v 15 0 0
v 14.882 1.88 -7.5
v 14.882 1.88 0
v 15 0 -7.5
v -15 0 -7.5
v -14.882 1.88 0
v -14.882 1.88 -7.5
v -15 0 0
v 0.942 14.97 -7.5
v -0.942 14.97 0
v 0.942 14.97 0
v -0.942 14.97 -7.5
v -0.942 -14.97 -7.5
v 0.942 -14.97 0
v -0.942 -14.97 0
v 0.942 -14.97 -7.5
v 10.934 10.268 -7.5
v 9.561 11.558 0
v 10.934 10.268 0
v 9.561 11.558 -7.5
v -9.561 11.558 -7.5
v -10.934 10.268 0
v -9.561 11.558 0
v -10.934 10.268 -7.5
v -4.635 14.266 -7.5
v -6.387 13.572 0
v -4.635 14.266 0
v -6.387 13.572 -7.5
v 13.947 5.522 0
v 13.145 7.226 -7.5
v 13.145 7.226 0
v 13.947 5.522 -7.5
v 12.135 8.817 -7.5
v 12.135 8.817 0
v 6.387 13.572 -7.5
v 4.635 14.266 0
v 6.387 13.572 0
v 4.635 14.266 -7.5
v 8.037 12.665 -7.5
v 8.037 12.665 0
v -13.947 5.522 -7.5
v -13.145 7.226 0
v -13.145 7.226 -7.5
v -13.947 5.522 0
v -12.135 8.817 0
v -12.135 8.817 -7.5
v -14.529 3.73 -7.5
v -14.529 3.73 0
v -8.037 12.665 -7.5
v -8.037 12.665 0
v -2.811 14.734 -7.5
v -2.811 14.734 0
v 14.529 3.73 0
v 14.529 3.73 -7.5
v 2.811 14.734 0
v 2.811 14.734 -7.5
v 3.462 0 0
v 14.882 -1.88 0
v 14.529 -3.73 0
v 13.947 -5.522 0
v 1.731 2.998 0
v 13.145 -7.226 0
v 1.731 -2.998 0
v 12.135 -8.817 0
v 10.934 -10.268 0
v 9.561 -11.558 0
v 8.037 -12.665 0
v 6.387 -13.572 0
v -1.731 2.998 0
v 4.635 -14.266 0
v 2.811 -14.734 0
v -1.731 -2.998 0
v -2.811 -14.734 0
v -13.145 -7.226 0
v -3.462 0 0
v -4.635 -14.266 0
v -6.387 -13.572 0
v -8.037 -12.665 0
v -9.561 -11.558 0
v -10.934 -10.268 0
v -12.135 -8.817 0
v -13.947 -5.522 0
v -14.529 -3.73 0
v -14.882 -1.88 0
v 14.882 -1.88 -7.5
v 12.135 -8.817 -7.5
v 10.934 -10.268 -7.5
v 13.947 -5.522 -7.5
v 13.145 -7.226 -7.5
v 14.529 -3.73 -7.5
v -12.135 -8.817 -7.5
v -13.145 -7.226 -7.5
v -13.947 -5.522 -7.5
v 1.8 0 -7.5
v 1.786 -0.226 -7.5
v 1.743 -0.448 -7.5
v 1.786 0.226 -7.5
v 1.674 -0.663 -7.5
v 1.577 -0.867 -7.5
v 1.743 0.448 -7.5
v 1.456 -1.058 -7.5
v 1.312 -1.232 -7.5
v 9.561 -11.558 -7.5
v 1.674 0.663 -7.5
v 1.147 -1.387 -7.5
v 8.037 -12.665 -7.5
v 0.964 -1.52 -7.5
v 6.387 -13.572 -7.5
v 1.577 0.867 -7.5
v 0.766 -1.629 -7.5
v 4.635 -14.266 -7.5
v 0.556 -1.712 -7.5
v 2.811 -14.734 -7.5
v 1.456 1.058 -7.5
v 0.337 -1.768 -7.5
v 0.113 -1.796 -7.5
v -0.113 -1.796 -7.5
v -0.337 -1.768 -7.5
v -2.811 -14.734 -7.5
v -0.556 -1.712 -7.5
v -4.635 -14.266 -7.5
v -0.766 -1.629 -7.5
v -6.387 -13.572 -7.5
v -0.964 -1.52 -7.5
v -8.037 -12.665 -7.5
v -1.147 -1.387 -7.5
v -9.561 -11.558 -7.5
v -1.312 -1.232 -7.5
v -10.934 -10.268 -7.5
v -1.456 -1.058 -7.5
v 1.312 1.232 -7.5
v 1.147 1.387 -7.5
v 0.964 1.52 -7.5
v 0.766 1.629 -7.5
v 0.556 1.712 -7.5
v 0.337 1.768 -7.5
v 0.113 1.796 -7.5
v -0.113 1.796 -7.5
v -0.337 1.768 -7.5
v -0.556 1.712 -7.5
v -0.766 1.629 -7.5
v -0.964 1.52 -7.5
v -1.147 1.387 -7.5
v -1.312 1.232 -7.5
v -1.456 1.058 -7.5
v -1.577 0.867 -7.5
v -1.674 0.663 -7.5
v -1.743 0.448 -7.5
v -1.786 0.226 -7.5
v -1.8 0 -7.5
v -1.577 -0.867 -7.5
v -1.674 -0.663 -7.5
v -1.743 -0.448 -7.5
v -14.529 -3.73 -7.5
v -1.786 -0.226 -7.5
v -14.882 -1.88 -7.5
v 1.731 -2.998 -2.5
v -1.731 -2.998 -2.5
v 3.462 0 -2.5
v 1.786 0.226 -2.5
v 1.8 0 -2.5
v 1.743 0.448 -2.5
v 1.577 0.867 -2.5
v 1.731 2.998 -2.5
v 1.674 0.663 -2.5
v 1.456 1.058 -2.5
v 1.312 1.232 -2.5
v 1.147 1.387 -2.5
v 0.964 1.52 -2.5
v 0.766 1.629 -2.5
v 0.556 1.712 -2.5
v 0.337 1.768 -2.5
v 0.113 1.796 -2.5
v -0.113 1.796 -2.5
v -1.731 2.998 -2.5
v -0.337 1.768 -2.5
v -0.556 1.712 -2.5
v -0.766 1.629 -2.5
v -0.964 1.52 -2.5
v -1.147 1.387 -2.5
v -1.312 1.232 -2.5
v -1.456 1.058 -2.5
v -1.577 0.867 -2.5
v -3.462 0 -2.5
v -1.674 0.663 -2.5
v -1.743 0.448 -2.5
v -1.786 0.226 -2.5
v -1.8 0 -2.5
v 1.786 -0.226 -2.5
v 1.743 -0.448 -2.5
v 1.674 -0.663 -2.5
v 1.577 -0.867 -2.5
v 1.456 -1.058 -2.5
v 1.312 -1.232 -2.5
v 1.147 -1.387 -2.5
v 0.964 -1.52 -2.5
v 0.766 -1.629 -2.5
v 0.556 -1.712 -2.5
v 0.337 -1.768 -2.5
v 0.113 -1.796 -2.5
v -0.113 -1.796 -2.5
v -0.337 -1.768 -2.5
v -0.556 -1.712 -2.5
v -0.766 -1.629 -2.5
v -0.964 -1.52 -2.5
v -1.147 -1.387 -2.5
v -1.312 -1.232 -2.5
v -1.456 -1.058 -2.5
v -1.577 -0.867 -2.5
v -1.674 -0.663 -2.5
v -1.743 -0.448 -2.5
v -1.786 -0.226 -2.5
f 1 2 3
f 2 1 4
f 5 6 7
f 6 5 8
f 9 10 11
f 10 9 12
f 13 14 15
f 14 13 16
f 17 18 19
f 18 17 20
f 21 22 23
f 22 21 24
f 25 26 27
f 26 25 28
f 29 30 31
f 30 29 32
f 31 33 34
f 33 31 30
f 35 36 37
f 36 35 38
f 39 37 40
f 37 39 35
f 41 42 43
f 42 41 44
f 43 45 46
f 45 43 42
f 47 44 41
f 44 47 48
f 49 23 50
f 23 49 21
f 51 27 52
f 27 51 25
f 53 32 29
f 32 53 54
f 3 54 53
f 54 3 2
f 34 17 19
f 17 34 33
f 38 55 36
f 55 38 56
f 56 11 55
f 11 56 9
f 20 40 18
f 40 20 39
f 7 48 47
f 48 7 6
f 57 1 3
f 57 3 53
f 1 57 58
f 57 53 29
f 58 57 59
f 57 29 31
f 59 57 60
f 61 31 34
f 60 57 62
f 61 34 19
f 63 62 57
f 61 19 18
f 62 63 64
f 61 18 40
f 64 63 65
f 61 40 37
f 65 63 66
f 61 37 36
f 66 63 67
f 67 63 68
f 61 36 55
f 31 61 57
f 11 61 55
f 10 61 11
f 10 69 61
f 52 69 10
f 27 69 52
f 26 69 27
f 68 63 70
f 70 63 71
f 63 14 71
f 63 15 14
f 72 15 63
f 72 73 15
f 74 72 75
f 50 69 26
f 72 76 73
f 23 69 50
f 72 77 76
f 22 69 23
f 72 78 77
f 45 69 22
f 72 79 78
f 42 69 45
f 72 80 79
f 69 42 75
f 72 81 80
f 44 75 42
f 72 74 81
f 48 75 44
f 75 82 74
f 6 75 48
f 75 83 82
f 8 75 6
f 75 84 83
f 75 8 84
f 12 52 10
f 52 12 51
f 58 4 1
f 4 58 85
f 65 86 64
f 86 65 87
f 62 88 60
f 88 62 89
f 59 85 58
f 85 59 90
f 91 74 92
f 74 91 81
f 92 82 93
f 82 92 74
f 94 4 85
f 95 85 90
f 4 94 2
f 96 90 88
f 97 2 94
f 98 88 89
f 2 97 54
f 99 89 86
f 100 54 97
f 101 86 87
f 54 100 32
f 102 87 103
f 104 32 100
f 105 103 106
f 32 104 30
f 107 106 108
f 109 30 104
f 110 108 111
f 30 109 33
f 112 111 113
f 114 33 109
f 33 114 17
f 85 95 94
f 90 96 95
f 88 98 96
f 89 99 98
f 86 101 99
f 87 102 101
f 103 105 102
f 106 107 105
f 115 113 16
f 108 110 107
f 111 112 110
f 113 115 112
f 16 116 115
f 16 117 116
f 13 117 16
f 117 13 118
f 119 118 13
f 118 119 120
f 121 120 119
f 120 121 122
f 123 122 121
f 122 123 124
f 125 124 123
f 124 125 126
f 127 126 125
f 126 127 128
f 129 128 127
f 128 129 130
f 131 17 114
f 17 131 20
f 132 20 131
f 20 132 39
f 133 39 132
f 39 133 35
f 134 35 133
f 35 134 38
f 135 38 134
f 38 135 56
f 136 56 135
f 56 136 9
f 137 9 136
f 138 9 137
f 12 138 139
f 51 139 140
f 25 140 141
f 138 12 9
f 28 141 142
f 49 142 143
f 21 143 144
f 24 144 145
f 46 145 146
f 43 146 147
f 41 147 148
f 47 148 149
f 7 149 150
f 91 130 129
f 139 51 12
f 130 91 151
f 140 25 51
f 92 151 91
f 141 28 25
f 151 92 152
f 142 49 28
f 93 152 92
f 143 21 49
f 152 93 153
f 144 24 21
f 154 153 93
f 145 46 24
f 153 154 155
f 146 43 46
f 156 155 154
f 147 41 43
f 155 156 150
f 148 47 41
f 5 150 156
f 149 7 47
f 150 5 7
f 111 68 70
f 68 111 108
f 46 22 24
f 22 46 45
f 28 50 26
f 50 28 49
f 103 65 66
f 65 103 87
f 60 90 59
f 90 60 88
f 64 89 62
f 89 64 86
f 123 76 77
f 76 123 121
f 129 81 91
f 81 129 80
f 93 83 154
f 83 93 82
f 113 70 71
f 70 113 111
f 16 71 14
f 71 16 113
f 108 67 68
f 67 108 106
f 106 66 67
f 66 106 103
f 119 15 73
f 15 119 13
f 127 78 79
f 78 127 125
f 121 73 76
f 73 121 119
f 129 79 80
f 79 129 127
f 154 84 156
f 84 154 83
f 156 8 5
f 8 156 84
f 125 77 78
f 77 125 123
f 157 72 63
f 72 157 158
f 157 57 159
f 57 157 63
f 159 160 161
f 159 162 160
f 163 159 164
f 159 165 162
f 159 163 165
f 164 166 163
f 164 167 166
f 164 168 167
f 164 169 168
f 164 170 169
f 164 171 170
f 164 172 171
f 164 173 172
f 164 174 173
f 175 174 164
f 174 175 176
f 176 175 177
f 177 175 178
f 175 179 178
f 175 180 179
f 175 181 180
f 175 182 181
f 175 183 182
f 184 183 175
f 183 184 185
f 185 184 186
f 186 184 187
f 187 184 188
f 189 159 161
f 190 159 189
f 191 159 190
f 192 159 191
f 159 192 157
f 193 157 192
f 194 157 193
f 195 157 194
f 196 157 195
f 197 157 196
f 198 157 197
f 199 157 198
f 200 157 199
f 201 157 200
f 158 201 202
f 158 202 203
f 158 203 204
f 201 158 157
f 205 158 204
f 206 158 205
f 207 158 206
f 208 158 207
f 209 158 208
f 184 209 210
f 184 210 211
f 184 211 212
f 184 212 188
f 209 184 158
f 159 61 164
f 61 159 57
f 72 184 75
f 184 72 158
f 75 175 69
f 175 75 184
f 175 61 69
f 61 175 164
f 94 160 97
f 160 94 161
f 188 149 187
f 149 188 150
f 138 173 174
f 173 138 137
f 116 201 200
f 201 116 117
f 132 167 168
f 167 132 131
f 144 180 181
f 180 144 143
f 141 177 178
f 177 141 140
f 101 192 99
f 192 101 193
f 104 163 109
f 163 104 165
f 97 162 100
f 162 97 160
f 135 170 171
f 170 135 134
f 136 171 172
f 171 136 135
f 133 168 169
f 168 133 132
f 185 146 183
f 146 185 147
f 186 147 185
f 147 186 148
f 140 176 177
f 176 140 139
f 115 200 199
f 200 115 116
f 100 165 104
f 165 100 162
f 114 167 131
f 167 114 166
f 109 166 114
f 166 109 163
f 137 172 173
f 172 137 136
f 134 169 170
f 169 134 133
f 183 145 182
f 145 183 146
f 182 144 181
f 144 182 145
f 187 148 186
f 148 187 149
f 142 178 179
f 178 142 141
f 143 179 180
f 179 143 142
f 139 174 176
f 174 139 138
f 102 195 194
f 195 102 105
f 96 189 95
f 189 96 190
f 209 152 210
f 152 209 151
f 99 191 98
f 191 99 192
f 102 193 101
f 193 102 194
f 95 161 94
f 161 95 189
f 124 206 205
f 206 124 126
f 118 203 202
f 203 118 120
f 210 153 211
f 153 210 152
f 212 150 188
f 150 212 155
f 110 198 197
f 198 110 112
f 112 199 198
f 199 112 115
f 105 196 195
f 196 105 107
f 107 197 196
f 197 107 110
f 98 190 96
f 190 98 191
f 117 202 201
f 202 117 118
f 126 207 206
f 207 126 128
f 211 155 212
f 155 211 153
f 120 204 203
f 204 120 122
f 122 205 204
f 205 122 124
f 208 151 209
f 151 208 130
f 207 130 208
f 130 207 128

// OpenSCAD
$fn = 50;


difference() {
	union() {
		translate(v = [0, 0, -7.5000000000]) {
			cylinder(h = 7.5000000000, r = 15.0000000000);
		}
		translate(v = [0, 0, -6.0000000000]) {
			cylinder(h = 6, r = 2.8750000000);
		}
	}
	union() {
		translate(v = [0, 0, 0]) {
			rotate(a = [0, 0, 0]) {
				difference() {
					union() {
						translate(v = [0, 0, -2.5000000000]) {
							linear_extrude(height = 2.5000000000) {
								polygon(points = [[3.4620000000, 0.0000000000], [1.7310000000, 2.9981799479], [-1.7310000000, 2.9981799479], [-3.4620000000, 0.0000000000], [-1.7310000000, -2.9981799479], [1.7310000000, -2.9981799479]]);
							}
						}
					}
					union();
				}
			}
		}
		#translate(v = [0, 0, -100.0000000000]) {
			cylinder(h = 200, r = 1.8000000000);
		}
	}
}
